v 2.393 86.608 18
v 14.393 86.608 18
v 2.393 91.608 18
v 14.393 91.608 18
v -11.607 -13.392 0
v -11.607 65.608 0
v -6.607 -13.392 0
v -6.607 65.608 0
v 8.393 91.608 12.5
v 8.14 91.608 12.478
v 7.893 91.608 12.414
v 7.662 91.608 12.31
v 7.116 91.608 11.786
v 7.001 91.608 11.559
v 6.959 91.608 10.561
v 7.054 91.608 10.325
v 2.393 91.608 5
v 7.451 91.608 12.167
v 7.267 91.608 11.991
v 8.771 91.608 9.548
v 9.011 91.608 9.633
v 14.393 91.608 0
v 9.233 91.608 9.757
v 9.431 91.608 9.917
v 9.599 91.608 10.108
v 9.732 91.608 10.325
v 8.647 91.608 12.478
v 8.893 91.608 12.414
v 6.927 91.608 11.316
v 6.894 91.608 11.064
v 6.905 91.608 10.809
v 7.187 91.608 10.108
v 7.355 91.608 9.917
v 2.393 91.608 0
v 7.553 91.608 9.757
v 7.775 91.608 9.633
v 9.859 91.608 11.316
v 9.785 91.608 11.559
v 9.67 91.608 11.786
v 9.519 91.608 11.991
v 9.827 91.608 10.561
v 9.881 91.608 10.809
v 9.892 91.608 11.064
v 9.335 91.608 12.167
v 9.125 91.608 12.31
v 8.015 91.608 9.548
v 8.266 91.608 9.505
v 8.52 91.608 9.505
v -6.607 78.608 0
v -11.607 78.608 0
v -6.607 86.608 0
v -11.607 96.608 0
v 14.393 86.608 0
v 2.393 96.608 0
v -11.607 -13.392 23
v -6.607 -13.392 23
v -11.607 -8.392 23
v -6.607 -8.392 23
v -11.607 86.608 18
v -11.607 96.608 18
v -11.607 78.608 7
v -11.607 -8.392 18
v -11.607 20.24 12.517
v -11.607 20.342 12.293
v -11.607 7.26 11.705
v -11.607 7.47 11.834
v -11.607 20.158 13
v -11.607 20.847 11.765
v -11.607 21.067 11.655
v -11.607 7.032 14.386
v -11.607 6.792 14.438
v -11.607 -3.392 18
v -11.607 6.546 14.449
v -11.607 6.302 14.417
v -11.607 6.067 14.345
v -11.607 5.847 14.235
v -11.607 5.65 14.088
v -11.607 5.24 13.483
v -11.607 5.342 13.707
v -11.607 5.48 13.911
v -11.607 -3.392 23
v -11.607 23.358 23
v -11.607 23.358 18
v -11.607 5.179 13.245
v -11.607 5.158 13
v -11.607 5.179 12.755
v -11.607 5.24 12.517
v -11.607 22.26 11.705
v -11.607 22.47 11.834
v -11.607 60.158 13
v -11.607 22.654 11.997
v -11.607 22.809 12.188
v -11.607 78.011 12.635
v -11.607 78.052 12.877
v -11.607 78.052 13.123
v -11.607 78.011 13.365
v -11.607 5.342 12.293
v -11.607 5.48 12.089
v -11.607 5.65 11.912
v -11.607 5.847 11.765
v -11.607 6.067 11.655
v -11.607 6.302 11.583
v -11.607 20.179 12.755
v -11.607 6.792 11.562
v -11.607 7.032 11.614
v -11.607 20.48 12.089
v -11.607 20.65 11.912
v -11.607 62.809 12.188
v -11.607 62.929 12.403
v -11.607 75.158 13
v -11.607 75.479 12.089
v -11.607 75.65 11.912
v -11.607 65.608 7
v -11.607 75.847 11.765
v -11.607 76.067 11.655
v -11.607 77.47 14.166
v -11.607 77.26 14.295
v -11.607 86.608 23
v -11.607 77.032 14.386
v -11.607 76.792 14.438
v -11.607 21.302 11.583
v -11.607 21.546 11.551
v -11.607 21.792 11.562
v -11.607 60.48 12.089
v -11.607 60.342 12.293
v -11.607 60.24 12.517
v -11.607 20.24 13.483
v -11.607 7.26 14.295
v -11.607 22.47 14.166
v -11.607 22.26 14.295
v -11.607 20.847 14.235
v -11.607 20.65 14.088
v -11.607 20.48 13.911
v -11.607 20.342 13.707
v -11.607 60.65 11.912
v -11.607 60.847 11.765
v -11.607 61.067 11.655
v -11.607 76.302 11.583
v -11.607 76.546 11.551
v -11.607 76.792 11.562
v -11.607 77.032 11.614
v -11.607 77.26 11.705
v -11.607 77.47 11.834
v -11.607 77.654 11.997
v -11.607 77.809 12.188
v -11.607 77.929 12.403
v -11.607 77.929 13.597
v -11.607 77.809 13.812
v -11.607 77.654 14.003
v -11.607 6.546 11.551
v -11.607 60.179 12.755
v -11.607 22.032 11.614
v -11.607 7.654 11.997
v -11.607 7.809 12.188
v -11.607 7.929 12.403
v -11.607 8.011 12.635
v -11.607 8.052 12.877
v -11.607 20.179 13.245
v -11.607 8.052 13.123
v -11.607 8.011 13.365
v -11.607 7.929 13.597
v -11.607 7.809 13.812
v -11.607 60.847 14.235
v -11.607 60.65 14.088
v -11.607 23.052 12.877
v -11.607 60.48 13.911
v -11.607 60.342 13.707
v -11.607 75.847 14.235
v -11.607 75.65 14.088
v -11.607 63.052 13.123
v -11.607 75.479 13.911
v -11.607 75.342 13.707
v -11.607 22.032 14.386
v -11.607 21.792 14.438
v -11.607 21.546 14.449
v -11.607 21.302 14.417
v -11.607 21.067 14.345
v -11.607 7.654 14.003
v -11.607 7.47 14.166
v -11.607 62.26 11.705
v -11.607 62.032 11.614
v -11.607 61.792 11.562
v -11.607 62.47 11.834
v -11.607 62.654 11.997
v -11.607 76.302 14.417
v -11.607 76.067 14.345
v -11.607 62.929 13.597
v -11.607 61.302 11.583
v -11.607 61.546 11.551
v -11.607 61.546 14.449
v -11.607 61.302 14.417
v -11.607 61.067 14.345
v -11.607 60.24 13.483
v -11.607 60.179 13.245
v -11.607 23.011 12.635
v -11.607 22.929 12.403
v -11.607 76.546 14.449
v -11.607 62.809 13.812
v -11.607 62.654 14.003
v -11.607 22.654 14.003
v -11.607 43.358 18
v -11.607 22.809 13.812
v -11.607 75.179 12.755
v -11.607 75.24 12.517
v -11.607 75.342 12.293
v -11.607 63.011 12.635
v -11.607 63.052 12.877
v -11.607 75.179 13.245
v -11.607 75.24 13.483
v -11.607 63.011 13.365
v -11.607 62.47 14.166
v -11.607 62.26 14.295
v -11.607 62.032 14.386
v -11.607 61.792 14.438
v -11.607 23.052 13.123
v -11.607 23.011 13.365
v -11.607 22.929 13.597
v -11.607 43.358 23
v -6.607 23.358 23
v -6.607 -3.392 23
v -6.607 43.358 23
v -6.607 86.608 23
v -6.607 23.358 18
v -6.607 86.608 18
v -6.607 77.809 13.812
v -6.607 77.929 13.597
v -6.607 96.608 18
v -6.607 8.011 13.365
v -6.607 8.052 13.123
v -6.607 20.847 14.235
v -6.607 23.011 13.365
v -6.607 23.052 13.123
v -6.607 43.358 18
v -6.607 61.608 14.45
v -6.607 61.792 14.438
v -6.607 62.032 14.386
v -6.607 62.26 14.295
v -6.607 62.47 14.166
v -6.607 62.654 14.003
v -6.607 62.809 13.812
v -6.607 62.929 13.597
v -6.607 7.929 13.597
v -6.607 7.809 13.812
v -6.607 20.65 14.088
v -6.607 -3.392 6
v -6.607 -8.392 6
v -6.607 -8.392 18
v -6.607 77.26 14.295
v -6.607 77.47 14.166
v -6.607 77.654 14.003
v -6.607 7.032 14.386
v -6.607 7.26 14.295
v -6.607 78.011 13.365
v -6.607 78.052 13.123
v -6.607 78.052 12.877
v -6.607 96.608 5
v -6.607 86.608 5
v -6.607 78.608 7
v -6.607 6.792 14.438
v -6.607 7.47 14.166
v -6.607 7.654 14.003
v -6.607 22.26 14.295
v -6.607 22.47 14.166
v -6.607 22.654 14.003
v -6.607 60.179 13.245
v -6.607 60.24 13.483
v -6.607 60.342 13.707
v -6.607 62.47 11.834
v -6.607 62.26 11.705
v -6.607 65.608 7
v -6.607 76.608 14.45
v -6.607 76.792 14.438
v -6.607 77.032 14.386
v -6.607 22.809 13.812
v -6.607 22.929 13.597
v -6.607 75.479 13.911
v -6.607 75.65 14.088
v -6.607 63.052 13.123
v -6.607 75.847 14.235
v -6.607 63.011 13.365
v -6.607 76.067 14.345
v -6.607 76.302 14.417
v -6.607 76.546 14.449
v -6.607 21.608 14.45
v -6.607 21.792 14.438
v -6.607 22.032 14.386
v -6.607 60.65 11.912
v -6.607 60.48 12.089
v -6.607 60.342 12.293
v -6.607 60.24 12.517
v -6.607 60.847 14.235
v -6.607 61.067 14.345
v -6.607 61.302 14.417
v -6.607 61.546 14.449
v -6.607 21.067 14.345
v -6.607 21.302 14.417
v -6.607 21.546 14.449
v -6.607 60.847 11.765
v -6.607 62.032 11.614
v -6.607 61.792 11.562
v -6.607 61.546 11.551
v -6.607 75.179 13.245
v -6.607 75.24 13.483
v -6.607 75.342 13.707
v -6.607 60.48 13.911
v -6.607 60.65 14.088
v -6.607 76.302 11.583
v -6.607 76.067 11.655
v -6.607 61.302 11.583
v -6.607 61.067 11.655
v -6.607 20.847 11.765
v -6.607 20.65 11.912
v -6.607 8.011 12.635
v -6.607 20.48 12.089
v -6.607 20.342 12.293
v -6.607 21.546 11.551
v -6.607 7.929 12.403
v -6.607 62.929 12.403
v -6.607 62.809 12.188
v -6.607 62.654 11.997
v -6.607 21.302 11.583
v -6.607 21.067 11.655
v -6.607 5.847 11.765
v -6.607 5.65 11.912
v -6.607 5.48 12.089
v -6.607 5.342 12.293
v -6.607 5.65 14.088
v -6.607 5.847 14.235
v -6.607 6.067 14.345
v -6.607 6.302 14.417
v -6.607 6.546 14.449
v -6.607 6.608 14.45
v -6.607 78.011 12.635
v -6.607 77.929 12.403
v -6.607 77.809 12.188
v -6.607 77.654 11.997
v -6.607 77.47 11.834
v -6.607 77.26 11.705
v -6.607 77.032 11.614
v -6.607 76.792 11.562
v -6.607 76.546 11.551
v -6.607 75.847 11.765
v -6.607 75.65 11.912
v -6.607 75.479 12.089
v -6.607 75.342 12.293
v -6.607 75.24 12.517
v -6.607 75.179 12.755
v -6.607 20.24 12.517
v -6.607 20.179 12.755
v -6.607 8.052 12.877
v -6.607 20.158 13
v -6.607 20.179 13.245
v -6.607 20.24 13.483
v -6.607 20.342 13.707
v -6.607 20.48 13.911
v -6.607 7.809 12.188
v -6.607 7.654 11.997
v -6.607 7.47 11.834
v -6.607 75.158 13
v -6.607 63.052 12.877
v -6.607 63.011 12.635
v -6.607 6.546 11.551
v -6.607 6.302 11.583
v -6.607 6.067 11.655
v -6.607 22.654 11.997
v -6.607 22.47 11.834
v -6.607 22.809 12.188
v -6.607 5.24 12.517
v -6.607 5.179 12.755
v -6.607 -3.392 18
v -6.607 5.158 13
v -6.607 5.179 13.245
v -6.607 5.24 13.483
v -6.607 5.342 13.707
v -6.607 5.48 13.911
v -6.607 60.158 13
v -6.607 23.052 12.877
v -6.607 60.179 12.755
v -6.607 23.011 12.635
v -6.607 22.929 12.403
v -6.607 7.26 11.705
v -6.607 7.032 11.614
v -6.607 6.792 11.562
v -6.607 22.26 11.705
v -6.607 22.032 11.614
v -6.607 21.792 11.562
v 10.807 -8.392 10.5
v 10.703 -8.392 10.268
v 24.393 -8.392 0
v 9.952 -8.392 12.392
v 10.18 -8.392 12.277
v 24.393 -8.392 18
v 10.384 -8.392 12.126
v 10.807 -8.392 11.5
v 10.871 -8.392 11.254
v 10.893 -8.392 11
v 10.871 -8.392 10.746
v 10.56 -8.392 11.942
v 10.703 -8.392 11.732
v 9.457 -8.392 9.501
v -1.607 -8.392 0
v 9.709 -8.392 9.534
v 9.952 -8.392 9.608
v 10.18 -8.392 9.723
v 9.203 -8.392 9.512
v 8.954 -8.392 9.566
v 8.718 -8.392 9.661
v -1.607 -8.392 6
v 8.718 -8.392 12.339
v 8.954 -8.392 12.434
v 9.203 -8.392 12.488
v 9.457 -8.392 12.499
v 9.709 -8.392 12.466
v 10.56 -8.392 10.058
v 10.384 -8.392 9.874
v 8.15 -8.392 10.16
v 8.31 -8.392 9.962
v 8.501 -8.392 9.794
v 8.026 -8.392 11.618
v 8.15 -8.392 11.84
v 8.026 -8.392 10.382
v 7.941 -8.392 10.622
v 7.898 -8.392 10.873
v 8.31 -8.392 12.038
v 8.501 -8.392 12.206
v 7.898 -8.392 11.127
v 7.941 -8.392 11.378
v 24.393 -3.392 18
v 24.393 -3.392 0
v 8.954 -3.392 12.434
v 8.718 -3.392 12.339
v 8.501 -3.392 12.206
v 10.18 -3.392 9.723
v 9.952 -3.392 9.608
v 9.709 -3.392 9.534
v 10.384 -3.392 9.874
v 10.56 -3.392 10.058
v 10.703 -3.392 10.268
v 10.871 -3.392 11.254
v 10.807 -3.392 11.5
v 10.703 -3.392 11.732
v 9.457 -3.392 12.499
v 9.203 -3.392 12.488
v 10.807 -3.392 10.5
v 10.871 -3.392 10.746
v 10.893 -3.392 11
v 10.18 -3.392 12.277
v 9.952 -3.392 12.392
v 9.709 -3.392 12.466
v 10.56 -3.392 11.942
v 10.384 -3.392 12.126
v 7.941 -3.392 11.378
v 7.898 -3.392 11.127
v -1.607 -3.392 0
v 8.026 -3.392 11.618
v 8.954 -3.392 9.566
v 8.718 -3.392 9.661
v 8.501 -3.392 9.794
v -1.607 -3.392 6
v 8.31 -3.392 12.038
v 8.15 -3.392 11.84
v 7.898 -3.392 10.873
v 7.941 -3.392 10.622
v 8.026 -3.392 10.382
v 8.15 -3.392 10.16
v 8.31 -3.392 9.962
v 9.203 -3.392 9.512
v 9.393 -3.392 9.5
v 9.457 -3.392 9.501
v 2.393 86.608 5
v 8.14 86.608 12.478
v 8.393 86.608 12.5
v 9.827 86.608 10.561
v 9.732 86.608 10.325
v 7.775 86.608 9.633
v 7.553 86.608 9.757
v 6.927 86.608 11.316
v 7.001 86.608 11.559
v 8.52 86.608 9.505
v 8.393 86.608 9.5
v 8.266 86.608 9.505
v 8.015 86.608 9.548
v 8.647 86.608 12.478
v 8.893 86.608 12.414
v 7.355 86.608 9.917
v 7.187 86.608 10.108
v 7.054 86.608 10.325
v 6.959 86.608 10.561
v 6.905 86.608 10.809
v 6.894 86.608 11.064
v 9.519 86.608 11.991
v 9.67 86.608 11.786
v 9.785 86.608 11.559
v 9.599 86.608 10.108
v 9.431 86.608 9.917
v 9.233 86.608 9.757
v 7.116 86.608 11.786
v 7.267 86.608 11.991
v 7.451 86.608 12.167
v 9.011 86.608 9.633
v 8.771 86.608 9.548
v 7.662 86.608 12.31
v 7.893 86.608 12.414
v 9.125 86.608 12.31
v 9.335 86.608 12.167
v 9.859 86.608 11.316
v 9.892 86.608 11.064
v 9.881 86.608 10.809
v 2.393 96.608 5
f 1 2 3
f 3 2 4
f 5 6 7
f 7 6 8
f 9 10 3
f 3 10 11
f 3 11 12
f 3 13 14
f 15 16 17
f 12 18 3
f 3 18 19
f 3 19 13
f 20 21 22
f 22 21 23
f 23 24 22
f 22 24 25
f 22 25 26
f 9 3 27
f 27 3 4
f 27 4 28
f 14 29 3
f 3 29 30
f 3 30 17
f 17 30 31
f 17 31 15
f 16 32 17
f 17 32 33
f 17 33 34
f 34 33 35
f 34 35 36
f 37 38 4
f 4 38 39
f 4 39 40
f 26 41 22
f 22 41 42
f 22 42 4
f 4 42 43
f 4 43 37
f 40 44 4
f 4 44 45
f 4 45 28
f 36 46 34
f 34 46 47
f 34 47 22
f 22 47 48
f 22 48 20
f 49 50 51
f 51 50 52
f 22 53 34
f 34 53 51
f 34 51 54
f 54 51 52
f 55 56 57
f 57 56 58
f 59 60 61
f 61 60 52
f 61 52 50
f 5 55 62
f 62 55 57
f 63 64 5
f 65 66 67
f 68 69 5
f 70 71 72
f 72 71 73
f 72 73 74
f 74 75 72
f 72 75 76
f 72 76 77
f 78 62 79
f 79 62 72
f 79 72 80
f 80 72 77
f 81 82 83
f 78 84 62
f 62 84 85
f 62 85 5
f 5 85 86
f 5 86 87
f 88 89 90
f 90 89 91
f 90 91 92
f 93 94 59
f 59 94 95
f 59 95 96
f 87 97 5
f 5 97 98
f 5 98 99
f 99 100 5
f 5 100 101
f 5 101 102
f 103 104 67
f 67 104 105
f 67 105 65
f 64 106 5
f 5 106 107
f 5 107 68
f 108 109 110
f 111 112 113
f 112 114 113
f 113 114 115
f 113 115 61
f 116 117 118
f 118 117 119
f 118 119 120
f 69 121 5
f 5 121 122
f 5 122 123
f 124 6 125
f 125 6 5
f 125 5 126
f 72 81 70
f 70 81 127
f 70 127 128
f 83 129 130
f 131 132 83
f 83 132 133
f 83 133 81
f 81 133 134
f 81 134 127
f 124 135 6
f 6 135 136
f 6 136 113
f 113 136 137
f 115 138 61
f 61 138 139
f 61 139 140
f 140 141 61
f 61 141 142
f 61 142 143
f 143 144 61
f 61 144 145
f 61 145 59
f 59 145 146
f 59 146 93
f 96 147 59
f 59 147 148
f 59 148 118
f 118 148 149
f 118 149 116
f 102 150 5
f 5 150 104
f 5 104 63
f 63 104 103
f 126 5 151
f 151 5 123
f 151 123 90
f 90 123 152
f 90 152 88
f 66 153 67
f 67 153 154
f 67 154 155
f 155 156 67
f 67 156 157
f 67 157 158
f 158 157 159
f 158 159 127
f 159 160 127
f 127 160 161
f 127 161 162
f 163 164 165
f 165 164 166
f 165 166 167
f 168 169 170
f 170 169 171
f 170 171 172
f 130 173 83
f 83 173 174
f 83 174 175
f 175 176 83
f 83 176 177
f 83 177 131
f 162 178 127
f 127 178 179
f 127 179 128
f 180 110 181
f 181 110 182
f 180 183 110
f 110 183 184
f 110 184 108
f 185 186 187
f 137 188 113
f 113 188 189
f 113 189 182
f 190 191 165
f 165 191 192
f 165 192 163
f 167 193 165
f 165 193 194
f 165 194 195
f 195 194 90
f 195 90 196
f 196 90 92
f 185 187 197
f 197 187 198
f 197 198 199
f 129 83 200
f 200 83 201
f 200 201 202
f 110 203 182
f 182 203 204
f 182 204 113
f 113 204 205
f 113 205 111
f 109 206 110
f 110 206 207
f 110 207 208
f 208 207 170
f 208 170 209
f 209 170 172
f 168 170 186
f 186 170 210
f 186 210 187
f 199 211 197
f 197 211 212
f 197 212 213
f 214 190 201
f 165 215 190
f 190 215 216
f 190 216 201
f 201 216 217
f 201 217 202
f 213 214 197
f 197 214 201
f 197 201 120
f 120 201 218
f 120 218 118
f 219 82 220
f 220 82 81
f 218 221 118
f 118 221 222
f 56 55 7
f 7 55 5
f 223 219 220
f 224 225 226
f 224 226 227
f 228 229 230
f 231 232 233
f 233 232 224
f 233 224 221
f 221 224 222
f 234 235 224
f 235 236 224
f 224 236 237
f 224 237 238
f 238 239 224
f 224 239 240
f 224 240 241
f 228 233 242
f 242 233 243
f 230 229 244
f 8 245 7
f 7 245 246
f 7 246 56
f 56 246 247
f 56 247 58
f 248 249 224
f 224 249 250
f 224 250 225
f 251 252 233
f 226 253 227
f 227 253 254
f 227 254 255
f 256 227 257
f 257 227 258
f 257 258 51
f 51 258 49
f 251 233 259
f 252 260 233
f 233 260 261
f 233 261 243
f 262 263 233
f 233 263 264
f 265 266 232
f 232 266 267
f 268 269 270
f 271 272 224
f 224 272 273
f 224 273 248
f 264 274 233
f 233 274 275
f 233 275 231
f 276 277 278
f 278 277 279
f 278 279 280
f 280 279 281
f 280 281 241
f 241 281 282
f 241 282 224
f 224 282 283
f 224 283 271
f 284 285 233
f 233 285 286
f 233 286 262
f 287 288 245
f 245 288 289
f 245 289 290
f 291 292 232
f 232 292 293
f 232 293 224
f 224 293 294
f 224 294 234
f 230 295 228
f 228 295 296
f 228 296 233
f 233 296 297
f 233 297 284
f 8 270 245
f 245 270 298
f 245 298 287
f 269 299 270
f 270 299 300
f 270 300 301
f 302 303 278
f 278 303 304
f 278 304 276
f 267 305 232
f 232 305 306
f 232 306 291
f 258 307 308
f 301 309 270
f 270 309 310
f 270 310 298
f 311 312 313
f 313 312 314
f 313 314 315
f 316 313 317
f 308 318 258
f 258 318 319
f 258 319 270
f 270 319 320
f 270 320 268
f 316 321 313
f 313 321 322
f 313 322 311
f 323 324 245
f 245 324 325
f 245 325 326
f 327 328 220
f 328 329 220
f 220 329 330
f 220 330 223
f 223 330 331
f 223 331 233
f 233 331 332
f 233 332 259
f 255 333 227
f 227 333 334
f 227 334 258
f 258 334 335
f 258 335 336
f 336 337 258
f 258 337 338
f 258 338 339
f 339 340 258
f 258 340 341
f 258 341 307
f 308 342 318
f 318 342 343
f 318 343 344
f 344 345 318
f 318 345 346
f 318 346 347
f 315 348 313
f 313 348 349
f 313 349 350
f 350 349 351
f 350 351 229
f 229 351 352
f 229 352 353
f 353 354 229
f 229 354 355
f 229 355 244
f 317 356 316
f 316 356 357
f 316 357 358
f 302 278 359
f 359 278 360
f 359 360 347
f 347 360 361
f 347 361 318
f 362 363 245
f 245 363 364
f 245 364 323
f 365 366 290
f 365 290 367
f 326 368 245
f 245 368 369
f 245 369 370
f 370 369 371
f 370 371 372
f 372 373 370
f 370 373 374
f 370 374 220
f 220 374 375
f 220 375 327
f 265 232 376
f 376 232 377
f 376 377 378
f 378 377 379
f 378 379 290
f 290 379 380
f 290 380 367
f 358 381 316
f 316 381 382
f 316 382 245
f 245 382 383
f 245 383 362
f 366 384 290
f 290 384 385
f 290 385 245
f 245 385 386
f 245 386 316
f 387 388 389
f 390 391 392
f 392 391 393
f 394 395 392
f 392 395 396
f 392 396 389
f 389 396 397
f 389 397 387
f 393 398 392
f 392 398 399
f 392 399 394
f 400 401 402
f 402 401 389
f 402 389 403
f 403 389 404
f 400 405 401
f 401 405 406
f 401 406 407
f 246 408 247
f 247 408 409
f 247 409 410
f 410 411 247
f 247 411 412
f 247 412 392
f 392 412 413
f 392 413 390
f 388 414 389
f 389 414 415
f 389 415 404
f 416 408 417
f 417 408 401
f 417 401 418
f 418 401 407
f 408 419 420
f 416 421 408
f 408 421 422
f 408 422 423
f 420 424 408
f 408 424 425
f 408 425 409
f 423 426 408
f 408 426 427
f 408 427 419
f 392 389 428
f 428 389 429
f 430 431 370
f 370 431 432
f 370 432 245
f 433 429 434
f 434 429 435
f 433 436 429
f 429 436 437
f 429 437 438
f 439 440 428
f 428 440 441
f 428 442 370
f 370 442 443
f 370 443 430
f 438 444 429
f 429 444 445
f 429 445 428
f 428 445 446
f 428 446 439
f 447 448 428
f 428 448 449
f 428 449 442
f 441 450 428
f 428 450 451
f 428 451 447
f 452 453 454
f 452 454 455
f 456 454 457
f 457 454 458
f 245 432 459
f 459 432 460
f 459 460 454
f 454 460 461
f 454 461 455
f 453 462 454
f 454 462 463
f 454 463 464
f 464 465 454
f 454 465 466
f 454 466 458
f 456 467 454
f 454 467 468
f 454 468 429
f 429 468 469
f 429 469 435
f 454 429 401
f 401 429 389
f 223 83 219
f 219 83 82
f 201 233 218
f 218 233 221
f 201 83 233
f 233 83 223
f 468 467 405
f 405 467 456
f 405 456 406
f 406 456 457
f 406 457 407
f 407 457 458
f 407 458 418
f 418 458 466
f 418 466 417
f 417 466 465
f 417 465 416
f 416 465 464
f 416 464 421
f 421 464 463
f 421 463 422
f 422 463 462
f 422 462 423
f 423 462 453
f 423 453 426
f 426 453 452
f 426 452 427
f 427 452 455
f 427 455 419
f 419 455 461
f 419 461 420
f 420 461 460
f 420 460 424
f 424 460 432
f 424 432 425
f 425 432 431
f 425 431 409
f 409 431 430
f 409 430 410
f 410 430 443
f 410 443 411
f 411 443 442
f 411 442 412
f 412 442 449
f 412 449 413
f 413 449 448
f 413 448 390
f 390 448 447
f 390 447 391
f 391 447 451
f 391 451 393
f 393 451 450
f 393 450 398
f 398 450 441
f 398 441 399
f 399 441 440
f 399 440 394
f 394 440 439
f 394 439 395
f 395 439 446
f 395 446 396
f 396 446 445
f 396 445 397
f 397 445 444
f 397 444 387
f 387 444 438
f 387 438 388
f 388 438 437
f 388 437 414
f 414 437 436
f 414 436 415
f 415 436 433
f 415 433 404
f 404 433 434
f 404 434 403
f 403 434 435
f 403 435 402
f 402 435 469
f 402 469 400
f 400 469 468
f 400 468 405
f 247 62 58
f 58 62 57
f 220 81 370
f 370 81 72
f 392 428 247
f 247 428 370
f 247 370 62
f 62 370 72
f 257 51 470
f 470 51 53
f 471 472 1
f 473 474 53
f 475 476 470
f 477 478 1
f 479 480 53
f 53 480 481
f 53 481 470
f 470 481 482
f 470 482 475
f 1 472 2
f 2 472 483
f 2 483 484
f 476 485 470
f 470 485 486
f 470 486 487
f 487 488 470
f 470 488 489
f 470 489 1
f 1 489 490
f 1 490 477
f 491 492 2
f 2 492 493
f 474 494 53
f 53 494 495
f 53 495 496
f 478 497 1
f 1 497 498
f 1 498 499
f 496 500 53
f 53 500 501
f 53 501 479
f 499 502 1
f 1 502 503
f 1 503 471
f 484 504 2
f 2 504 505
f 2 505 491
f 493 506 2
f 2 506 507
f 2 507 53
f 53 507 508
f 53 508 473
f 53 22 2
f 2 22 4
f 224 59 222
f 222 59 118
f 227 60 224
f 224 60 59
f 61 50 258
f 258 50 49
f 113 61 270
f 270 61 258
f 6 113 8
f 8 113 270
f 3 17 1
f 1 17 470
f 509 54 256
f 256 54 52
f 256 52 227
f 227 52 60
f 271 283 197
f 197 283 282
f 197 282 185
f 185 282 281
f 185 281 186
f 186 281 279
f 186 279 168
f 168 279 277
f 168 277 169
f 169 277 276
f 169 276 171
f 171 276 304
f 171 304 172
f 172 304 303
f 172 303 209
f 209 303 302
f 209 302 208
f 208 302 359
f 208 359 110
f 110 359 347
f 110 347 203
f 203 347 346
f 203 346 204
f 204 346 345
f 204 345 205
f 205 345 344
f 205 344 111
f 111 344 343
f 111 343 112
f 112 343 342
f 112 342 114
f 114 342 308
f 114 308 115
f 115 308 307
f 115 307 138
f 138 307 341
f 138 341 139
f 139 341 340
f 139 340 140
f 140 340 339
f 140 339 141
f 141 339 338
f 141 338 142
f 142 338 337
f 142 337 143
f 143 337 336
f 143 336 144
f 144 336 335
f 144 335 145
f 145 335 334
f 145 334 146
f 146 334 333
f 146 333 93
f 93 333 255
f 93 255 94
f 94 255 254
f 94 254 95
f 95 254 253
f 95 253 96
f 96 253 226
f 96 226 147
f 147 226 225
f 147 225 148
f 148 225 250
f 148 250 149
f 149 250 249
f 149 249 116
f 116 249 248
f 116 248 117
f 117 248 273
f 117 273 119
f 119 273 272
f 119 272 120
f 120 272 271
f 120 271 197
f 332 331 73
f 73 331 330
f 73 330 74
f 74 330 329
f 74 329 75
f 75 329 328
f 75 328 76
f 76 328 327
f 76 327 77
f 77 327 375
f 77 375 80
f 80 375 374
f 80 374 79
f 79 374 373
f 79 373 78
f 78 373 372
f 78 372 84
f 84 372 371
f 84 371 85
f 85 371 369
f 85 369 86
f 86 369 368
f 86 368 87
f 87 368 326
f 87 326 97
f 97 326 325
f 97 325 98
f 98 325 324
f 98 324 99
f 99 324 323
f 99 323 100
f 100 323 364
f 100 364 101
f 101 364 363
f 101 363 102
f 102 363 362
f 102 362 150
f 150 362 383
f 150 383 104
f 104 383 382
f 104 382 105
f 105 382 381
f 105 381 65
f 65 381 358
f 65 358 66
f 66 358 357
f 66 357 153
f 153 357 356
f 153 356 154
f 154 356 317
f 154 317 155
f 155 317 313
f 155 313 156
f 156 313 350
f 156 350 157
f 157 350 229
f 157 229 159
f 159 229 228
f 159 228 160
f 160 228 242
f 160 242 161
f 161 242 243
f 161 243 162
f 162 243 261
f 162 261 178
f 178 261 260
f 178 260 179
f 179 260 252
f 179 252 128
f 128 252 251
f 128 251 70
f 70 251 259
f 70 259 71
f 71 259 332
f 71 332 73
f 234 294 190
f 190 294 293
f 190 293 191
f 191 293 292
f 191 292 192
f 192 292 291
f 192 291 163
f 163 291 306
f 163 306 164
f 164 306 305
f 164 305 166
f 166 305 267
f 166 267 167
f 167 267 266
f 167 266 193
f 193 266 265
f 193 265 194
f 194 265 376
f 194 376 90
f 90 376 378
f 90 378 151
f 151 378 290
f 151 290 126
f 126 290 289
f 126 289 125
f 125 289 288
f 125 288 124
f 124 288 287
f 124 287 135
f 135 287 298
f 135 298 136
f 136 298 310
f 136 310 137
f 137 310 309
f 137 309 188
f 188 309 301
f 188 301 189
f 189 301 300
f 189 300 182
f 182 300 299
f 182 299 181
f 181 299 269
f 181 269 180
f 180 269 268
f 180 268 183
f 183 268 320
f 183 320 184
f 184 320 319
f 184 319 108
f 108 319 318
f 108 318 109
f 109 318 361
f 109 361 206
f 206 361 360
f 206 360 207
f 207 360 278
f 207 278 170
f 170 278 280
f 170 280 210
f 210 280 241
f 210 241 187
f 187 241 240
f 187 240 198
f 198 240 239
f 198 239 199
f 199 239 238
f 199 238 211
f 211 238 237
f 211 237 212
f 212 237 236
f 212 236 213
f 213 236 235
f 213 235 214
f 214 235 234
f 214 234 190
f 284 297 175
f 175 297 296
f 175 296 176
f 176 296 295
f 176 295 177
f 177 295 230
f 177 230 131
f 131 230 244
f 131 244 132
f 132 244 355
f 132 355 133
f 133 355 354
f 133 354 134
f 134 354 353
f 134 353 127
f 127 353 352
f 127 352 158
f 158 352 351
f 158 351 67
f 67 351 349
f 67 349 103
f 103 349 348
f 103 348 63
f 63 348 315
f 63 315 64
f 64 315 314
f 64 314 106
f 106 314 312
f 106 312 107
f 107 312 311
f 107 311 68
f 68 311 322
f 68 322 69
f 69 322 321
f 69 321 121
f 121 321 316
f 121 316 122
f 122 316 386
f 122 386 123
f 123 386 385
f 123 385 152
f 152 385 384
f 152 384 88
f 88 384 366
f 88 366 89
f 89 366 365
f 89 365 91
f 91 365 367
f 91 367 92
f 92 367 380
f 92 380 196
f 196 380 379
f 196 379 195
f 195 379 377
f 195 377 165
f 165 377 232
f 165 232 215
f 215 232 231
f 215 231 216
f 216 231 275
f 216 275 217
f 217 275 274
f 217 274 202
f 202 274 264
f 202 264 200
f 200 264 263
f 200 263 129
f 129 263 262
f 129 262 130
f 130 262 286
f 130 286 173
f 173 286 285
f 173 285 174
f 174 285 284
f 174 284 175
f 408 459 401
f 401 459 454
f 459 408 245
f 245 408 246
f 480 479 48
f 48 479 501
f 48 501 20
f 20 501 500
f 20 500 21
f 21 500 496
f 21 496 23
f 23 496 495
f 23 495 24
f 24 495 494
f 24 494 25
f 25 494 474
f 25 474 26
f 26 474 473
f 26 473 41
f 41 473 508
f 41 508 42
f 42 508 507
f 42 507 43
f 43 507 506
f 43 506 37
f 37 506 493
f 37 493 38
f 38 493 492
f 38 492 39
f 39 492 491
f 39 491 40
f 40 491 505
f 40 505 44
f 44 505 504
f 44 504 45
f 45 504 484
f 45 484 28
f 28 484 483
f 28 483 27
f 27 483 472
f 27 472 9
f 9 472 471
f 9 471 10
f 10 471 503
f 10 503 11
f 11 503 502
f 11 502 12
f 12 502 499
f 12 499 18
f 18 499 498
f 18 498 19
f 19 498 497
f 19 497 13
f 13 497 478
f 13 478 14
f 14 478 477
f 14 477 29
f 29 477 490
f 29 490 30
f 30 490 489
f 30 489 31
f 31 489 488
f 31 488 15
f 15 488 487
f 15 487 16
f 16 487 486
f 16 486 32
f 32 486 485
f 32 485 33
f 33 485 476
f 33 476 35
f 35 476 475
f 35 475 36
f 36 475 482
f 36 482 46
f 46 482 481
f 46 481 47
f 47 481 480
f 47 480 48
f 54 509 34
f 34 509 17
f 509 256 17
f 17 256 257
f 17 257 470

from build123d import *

# Parameters (mm, degrees)
EXTRUDE_1_DEPTH      = 23
SKETCH_2_W           = 5
SKETCH_2_H           = 20
CUT_EXTRUDE_1_DEPTH  = 5
SKETCH_3_R           = 1.5
CUT_EXTRUDE_2_DEPTH  = 106.470477522
SKETCH_5_W           = 70.883972197
SKETCH_5_H           = 5
CUT_EXTRUDE_3_DEPTH  = 5
SKETCH_6_W           = 26
SKETCH_6_H           = 5
EXTRUDE_2_DEPTH      = 23
CUT_EXTRUDE_4_REACH  = 112.223
SKETCH_7_W           = 21
SKETCH_7_H           = 14
SKETCH_9_W           = 42.093612699
SKETCH_9_H           = 5
CUT_EXTRUDE_6_DEPTH  = 5
CUT_EXTRUDE_7_REACH  = 103.079
SKETCH_10_W          = 7
SKETCH_10_H          = 13
SKETCH_12_W          = 12
SKETCH_12_H          = 5
EXTRUDE_4_DEPTH      = 14
EXTRUDE_5_DEPTH      = 5
CUT_EXTRUDE_8_REACH  = 107.632
SKETCH_14_R          = 1.45
SKETCH_15_W          = 5
SKETCH_15_H          = 5
CUT_EXTRUDE_9_DEPTH  = 6
CUT_EXTRUDE_5_REACH  = 112.223
SKETCH_8_R           = 1.5
SKETCH_16_W          = 9
SKETCH_16_H          = 10
EXTRUDE_6_DEPTH      = 5
SKETCH_17_W          = 9
SKETCH_17_H          = 10
CUT_EXTRUDE_10_DEPTH = 5


with BuildPart() as part:
    # 草圖1 → 填料-伸長1 (new body)
    with BuildSketch(Plane.XY):
        Polygon((-6.606934821, -8.392345722), (-6.606934821, -13.392345722), (-11.606934821, -13.392345722), (-11.606934821, 91.607654278), (-6.606934821, 91.607654278), (-6.606934821, 87.03530479), (-6.606934821, 81.216936273), (-6.606934821, -3.392345722), (24.393065179, -3.392345722), (24.393065179, -8.392345722), align=None)
    extrude(amount=EXTRUDE_1_DEPTH)

    # 草圖2 → 除料-伸長1 (cut)
    with BuildSketch(Plane(origin=(0, 0, 23), x_dir=(-1, 0, 0), z_dir=(0, 0, -1))):
        with Locations((9.106934821, 33.357654278)):
            Rectangle(SKETCH_2_W, SKETCH_2_H)
    extrude(amount=CUT_EXTRUDE_1_DEPTH, mode=Mode.SUBTRACT)

    # 草圖3 → 除料-伸長2 (cut, through all)
    with BuildSketch(Plane.XZ.offset(8.392345722)):
        with Locations((9.393065179, 11)):
            Circle(SKETCH_3_R)
    extrude(amount=-CUT_EXTRUDE_2_DEPTH, mode=Mode.SUBTRACT)

    # 草圖5 → 除料-伸長3 (cut)
    with BuildSketch(Plane.XY.offset(23)):
        with Locations((-11.04892092, -5.892345722)):
            Rectangle(SKETCH_5_W, SKETCH_5_H)
    extrude(amount=-CUT_EXTRUDE_3_DEPTH, mode=Mode.SUBTRACT)

    # 草圖6 → 填料-伸長2 (add)
    with BuildSketch(Plane(origin=(0, 0, 0), x_dir=(-1, 0, 0), z_dir=(0, 0, -1))):
        with Locations((-1.393065179, 89.107654278)):
            Rectangle(SKETCH_6_W, SKETCH_6_H)
    extrude(amount=-EXTRUDE_2_DEPTH)

    # 草圖7 → 除料-伸長4 (cut, up to next)
    with BuildSketch(Plane(origin=(0, 91.607654278, 0), x_dir=(1, 0, 0), z_dir=(0, 1, 0)), mode=Mode.PRIVATE) as cut_extrude_4_sk1:
        with Locations((3.893065179, -7)):
            Rectangle(SKETCH_7_W, SKETCH_7_H)
    cut_extrude_4_tool1 = extrude(cut_extrude_4_sk1.sketch, amount=-CUT_EXTRUDE_4_REACH, mode=Mode.PRIVATE) & part.part
    add(cut_extrude_4_tool1.solids().sort_by_distance((3.893065, 91.607654, 7))[0], mode=Mode.SUBTRACT)

    # 草圖9 → 除料-伸長6 (cut)
    with BuildSketch(Plane.XY.offset(23)):
        with Locations((-6.653741171, 89.107654278)):
            Rectangle(SKETCH_9_W, SKETCH_9_H)
    extrude(amount=-CUT_EXTRUDE_6_DEPTH, mode=Mode.SUBTRACT)

    # 草圖10 → 除料-伸長7 (cut, up to next)
    with BuildSketch(Plane.ZY.offset(11.606934821), mode=Mode.PRIVATE) as cut_extrude_7_sk1:
        with Locations((3.5, 72.107654278)):
            Rectangle(SKETCH_10_W, SKETCH_10_H)
    cut_extrude_7_tool1 = extrude(cut_extrude_7_sk1.sketch, amount=-CUT_EXTRUDE_7_REACH, mode=Mode.PRIVATE) & part.part
    add(cut_extrude_7_tool1.solids().sort_by_distance((-11.606935, 72.107654, 3.5))[0], mode=Mode.SUBTRACT)

    # 草圖12 → 填料-伸長4 (add)
    with BuildSketch(Plane(origin=(0, 0, 14), x_dir=(-1, 0, 0), z_dir=(0, 0, -1))):
        with Locations((-8.393065179, 89.107654278)):
            Rectangle(SKETCH_12_W, SKETCH_12_H)
    extrude(amount=EXTRUDE_4_DEPTH)

    # 草圖13 → 填料-伸長5 (add)
    with BuildSketch(Plane(origin=(0, 91.607654278, 0), x_dir=(1, 0, 0), z_dir=(0, 1, 0))):
        Polygon((2.393065179, -14), (-6.606934821, -14), (-6.606934821, 0), (-11.606934821, 0), (-11.606934821, -5), (-11.606934821, -18), (2.393065179, -18), align=None)
    extrude(amount=EXTRUDE_5_DEPTH)

    # 草圖14 → 除料-伸長8 (cut, up to next)
    with BuildSketch(Plane.ZY.offset(11.606934821), mode=Mode.PRIVATE) as cut_extrude_8_sk1:
        with Locations(Location((13, 76.607654278, 0), (0, 0, 270))):
            Circle(SKETCH_14_R)
    cut_extrude_8_tool1 = extrude(cut_extrude_8_sk1.sketch, amount=-CUT_EXTRUDE_8_REACH, mode=Mode.PRIVATE) & part.part
    # 草圖14 → 除料-伸長8 (cut, up to next)
    with BuildSketch(Plane.ZY.offset(11.606934821), mode=Mode.PRIVATE) as cut_extrude_8_sk2:
        with Locations(Location((13, 6.607654278, 0), (0, 0, 270))):
            Circle(SKETCH_14_R)
    cut_extrude_8_tool2 = extrude(cut_extrude_8_sk2.sketch, amount=-CUT_EXTRUDE_8_REACH, mode=Mode.PRIVATE) & part.part
    # 草圖14 → 除料-伸長8 (cut, up to next)
    with BuildSketch(Plane.ZY.offset(11.606934821), mode=Mode.PRIVATE) as cut_extrude_8_sk3:
        with Locations(Location((13, 61.607654278, 0), (0, 0, 270))):
            Circle(SKETCH_14_R)
    cut_extrude_8_tool3 = extrude(cut_extrude_8_sk3.sketch, amount=-CUT_EXTRUDE_8_REACH, mode=Mode.PRIVATE) & part.part
    # 草圖14 → 除料-伸長8 (cut, up to next)
    with BuildSketch(Plane.ZY.offset(11.606934821), mode=Mode.PRIVATE) as cut_extrude_8_sk4:
        with Locations(Location((13, 21.607654278, 0), (0, 0, 270))):
            Circle(SKETCH_14_R)
    cut_extrude_8_tool4 = extrude(cut_extrude_8_sk4.sketch, amount=-CUT_EXTRUDE_8_REACH, mode=Mode.PRIVATE) & part.part
    add(cut_extrude_8_tool1.solids().sort_by_distance((-11.606935, 76.607654, 13))[0], mode=Mode.SUBTRACT)
    add(cut_extrude_8_tool2.solids().sort_by_distance((-11.606935, 6.607654, 13))[0], mode=Mode.SUBTRACT)
    add(cut_extrude_8_tool3.solids().sort_by_distance((-11.606935, 61.607654, 13))[0], mode=Mode.SUBTRACT)
    add(cut_extrude_8_tool4.solids().sort_by_distance((-11.606935, 21.607654, 13))[0], mode=Mode.SUBTRACT)

    # 草圖15 → 除料-伸長9 (cut)
    with BuildSketch(Plane(origin=(0, 0, 0), x_dir=(-1, 0, 0), z_dir=(0, 0, -1))):
        with Locations((4.106934821, -5.892345722)):
            Rectangle(SKETCH_15_W, SKETCH_15_H)
    extrude(amount=-CUT_EXTRUDE_9_DEPTH, mode=Mode.SUBTRACT)

    # 草圖8 → 除料-伸長5 (cut, up to next)
    with BuildSketch(Plane(origin=(0, 91.607654278, 0), x_dir=(1, 0, 0), z_dir=(0, 1, 0)), mode=Mode.PRIVATE) as cut_extrude_5_sk1:
        with Locations(Location((8.393065179, -11, 0), (0, 0, 270))):
            Circle(SKETCH_8_R)
    cut_extrude_5_tool1 = extrude(cut_extrude_5_sk1.sketch, amount=-CUT_EXTRUDE_5_REACH, mode=Mode.PRIVATE) & part.part
    add(cut_extrude_5_tool1.solids().sort_by_distance((8.393065, 91.607654, 11))[0], mode=Mode.SUBTRACT)

    # 草圖16 → 填料-伸長6 (add)
    with BuildSketch(Plane(origin=(0, 0, 0), x_dir=(-1, 0, 0), z_dir=(0, 0, -1))):
        with Locations((2.106934821, 91.607654278)):
            Rectangle(SKETCH_16_W, SKETCH_16_H)
    extrude(amount=-EXTRUDE_6_DEPTH)

    # 草圖17 → 除料-伸長10 (cut)
    with BuildSketch(Plane.XY.offset(18)):
        with Locations((-2.106934821, 91.607654278)):
            Rectangle(SKETCH_17_W, SKETCH_17_H)
    extrude(amount=-CUT_EXTRUDE_10_DEPTH, mode=Mode.SUBTRACT)


solid = part.part
